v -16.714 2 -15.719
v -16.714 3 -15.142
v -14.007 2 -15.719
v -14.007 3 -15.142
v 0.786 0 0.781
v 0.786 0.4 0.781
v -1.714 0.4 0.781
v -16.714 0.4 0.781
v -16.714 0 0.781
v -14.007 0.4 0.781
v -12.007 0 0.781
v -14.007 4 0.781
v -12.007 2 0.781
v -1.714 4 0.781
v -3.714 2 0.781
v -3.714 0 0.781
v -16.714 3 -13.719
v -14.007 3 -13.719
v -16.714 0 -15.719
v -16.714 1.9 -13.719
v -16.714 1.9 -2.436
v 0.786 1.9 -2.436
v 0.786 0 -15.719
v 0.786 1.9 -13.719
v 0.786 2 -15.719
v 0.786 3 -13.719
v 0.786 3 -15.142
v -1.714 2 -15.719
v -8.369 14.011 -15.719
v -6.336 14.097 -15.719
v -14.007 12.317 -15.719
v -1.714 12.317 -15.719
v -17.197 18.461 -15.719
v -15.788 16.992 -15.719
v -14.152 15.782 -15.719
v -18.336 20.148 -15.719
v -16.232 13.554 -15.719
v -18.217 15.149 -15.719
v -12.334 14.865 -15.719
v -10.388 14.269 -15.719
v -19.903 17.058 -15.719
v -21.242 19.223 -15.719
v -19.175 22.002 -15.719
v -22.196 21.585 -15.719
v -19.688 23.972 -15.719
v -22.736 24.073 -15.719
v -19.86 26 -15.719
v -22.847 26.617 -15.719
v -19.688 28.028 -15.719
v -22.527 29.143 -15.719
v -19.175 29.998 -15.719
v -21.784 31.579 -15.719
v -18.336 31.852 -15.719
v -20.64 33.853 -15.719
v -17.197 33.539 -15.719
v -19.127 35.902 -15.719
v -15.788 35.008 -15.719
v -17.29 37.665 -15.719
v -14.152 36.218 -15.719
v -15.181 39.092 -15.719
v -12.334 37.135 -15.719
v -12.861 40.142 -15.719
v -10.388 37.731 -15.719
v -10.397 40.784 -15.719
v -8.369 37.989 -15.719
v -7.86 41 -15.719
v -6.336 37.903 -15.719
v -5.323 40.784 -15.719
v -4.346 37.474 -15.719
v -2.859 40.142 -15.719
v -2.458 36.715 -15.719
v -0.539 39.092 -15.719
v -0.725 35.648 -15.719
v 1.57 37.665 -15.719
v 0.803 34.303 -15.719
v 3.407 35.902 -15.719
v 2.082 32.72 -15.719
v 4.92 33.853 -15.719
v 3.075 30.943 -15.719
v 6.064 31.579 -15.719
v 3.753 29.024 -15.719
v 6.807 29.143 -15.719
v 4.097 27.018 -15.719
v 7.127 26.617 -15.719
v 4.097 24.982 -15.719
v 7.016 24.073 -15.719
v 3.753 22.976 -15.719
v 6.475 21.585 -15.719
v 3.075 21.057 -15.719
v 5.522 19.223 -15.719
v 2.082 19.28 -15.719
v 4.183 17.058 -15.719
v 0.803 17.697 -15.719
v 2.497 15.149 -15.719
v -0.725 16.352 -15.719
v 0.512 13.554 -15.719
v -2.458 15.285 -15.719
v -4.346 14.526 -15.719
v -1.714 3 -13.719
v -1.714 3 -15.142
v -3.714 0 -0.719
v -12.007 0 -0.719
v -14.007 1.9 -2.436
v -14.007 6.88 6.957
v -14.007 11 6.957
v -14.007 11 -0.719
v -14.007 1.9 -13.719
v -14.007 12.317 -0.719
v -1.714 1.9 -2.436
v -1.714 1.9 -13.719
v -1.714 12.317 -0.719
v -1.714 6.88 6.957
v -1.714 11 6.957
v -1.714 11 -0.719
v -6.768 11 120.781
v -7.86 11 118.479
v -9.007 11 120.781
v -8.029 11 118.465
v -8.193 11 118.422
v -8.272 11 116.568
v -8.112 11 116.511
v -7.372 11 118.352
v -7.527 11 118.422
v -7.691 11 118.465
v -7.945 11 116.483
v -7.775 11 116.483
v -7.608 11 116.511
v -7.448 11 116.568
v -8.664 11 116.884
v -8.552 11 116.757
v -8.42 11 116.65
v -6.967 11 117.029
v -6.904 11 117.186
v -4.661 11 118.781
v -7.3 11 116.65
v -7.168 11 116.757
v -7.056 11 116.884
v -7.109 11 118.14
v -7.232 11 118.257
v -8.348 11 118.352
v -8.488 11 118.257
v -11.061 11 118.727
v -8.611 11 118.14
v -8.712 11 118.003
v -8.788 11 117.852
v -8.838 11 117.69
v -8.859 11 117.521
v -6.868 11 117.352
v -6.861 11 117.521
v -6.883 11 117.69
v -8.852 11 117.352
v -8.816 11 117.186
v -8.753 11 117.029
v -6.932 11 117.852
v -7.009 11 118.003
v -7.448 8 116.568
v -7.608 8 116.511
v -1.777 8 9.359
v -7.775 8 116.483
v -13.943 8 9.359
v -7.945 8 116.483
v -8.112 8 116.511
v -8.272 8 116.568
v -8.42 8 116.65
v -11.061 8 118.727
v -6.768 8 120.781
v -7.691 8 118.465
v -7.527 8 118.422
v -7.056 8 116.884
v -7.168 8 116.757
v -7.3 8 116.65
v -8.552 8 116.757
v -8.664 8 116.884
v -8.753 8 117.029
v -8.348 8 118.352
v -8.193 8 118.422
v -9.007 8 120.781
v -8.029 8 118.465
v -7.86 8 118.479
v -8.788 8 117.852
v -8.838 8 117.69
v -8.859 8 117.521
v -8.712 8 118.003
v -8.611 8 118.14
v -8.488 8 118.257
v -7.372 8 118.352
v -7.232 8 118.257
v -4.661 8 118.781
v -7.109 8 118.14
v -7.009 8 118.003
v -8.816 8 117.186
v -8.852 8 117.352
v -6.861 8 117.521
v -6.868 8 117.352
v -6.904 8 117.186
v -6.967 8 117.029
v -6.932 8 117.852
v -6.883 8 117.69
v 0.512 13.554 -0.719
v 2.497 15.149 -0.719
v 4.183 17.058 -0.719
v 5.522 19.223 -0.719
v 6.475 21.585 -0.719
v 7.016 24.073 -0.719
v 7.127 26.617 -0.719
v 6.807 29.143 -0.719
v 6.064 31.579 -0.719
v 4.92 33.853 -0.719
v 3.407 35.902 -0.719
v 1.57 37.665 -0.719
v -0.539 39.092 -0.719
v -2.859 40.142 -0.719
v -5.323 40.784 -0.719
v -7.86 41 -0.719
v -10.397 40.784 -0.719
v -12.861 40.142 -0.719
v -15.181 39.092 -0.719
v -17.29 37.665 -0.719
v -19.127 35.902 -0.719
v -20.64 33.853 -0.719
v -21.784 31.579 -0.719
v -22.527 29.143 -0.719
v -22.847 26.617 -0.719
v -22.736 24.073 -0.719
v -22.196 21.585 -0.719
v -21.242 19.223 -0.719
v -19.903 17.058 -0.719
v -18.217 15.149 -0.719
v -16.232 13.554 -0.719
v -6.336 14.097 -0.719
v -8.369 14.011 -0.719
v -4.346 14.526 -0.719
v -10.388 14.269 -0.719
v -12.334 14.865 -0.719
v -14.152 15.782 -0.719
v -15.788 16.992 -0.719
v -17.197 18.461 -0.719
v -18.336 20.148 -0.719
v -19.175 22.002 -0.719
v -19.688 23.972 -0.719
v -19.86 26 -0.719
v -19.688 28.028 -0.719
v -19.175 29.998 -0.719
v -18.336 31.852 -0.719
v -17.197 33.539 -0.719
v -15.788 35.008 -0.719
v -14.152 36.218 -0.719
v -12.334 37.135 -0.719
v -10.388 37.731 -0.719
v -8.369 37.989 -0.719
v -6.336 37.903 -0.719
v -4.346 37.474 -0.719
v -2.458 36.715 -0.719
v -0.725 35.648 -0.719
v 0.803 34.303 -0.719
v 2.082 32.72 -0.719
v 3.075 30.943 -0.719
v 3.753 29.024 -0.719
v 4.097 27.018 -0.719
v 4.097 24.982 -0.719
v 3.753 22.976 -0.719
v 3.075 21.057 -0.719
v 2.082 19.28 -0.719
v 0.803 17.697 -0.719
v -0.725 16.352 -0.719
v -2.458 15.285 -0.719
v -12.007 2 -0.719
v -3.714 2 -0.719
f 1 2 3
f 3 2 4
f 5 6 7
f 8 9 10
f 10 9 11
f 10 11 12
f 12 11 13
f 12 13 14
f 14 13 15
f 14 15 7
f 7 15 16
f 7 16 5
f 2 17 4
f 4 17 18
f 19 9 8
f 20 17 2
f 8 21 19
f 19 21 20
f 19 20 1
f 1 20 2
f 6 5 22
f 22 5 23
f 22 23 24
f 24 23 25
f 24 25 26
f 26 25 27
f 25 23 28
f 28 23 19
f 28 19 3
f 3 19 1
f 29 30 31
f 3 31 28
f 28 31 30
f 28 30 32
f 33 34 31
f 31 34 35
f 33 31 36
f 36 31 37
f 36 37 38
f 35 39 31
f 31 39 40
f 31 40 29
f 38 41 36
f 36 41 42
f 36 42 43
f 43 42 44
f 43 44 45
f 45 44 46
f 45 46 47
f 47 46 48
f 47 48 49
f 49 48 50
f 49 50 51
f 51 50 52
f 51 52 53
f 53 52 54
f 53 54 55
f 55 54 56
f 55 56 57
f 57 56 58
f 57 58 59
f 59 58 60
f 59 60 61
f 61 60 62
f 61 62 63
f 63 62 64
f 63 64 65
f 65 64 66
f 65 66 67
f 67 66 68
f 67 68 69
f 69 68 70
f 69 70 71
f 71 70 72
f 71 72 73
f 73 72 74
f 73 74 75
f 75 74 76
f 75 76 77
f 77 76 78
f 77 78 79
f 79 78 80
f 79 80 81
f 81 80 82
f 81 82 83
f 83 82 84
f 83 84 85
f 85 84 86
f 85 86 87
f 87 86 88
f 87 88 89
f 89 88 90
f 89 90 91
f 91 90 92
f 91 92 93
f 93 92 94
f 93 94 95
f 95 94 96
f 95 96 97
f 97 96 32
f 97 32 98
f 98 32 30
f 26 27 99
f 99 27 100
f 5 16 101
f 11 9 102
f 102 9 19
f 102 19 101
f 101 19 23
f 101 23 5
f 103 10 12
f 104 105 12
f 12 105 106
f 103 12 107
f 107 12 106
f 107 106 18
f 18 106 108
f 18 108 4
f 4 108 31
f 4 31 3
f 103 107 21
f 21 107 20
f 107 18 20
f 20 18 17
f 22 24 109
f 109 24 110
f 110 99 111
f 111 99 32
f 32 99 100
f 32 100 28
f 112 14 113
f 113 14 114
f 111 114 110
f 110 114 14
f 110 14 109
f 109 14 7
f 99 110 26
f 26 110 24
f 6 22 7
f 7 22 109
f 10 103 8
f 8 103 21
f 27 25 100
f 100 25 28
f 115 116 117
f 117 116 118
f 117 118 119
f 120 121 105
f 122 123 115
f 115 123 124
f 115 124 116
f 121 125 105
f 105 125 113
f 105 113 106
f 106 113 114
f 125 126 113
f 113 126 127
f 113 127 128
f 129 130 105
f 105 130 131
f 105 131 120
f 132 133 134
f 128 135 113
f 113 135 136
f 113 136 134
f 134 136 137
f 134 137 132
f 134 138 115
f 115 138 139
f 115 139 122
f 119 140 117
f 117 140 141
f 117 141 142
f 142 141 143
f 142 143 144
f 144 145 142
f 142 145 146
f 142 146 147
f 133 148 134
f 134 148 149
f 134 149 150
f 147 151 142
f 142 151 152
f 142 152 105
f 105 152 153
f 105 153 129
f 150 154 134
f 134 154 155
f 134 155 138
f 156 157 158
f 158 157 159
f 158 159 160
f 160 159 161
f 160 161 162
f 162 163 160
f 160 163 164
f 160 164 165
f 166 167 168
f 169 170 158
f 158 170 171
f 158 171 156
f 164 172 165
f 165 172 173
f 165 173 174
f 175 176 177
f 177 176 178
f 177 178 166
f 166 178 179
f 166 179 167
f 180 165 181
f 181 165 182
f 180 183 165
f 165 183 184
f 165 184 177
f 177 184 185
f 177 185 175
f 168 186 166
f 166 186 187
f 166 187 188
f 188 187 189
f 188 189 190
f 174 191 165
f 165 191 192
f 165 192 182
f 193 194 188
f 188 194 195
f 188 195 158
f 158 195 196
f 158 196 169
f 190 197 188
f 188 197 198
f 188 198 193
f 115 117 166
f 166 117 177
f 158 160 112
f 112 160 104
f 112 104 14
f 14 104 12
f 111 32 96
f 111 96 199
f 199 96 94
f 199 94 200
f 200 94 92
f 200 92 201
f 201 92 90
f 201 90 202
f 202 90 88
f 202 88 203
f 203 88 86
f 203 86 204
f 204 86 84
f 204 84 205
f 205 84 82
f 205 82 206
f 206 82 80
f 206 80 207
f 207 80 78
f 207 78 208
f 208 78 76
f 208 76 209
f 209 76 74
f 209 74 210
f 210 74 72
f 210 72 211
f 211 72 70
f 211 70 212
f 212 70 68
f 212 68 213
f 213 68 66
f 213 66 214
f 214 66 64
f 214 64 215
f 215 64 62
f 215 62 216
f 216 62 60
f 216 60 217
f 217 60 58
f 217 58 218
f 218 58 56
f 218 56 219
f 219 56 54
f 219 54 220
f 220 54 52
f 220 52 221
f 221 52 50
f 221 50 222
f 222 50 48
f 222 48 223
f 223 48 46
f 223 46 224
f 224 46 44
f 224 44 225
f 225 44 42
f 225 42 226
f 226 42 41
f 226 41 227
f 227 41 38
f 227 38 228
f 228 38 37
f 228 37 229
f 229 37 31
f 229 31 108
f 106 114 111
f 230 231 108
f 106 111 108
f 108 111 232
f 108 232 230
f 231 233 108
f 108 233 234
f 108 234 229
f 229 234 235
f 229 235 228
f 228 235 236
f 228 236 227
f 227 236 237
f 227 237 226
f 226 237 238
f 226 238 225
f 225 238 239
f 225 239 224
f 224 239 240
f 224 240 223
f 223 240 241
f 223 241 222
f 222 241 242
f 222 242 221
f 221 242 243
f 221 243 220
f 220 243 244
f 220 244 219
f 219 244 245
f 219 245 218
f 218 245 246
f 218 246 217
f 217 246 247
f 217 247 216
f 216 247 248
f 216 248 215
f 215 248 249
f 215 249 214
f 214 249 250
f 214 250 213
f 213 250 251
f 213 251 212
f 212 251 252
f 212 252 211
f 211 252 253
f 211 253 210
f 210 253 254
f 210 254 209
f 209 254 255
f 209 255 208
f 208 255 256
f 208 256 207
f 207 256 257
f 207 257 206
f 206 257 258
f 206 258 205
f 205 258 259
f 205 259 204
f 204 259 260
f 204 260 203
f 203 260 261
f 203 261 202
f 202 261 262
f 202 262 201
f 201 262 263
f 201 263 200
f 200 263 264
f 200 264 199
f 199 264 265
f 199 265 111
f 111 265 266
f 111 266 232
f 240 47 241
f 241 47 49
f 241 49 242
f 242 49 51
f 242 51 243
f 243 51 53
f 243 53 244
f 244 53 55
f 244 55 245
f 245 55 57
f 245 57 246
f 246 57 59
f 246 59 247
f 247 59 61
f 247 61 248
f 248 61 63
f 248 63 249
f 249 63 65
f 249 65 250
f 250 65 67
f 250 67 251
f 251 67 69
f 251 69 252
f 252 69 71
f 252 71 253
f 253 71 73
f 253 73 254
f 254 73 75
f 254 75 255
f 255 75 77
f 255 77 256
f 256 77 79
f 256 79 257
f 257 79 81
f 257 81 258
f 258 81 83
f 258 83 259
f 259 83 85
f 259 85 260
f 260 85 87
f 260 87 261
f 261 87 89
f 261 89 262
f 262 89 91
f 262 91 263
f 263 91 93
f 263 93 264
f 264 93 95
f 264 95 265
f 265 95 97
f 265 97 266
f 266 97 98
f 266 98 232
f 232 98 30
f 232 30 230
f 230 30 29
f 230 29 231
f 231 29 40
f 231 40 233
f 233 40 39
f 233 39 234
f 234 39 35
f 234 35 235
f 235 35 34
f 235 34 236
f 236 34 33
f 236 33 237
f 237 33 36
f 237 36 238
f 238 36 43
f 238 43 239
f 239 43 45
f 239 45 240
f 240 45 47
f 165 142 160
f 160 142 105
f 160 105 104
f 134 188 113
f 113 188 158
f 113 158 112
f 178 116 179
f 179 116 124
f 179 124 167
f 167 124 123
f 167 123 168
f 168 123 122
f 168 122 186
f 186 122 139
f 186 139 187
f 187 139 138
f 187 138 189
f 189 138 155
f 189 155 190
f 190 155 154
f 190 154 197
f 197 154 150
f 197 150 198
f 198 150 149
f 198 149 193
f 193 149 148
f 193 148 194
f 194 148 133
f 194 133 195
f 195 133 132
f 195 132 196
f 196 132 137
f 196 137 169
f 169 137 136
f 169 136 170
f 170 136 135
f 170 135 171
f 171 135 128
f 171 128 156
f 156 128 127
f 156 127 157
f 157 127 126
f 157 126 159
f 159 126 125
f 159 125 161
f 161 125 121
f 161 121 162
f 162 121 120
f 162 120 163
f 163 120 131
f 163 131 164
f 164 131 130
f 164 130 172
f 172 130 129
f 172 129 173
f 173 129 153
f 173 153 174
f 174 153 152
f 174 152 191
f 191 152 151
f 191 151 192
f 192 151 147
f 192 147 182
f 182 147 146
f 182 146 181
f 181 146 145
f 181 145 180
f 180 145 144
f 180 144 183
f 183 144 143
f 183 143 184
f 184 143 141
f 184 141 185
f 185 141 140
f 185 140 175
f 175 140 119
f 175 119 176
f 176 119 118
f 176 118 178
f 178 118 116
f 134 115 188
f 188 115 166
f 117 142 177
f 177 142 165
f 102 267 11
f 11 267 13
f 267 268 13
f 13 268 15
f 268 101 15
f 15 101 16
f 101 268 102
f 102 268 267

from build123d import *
from OCP.BRepFilletAPI import BRepFilletAPI_MakeChamfer

# Parameters (mm, degrees)
SKETCH1_W           = 17.5
SKETCH1_H           = 16.5
BOSS_EXTRUDE1_DEPTH = 3
SKETCH2_W           = 2.707061395
SKETCH2_H           = 1.1
SKETCH2_W_2         = 2.5
CUT_EXTRUDE1_DEPTH  = 14.5
CHAMFER1_SIZE       = 1.5
CHAMFER1_SIZE2      = 3.216760381
CHAMFER2_SIZE       = 1
CHAMFER2_SIZE2      = 0.577350269
SKETCH3_W           = 12.292938605
SKETCH3_H           = 15.922649731
BOSS_EXTRUDE2_DEPTH = 8
SKETCH4_W           = 12.292938605
SKETCH4_H           = 3
BOSS_EXTRUDE3_DEPTH = 120
CHAMFER3_SIZE       = 4
CHAMFER3_SIZE2      = 8.578027682
SKETCH5_W           = 12.292938605
SKETCH5_H           = 0.577350269
BOSS_EXTRUDE4_DEPTH = 10
SKETCH6_R           = 12
BOSS_EXTRUDE7_DEPTH = 15
CUT_EXTRUDE3_DEPTH  = 15
SKETCH10_R          = 1
CUT_EXTRUDE4_DEPTH  = 15
CHAMFER5_SIZE       = 2
CHAMFER5_SIZE2      = 2.054853594
SKETCH11_W          = 8.292938605
SKETCH11_H          = 2
CUT_EXTRUDE5_DEPTH  = 1.5


with BuildPart() as part:
    # Sketch1 → Boss-Extrude1 (new body)
    with BuildSketch(Plane(origin=(0, 0, 0), x_dir=(1, 0, 0), z_dir=(0, 1, 0))):
        with Locations((-7.963643791, 7.469362745)):
            Rectangle(SKETCH1_W, SKETCH1_H)
    extrude(amount=BOSS_EXTRUDE1_DEPTH)

    # Sketch2 → Cut-Extrude1 (cut)
    with BuildSketch(Plane.XY.offset(0.780637255)):
        with Locations((-15.360113094, 2.45)):
            Rectangle(SKETCH2_W, SKETCH2_H)
        with Locations((-0.463643791, 2.45)):
            Rectangle(SKETCH2_W_2, SKETCH2_H)
    extrude(amount=-CUT_EXTRUDE1_DEPTH, mode=Mode.SUBTRACT)

    # Chamfer1
    chamfer1_edges = [part.edges().sort_by_distance(p)[0] for p in [
        (-15.360113093, 1.9, 0.780637255),
        (-0.463643791, 1.9, 0.780637255),
    ]]
    chamfer1_side = [part.faces().sort_by_distance(p)[0] for p in [
        (-7.933712225, 1.383662189, 0.780637255),
    ]]
    chamfer(chamfer1_edges, length=CHAMFER1_SIZE, length2=CHAMFER1_SIZE2, reference=chamfer1_side[0])

    # Chamfer2
    chamfer2_edges = [part.edges().sort_by_distance(p)[0] for p in [
        (-7.963643791, 3, -15.719362745),
    ]]
    chamfer2_side = [part.faces().sort_by_distance(p)[0] for p in [
        (-7.963643791, 1.5, -15.719362745),
    ]]
    chamfer(chamfer2_edges, length=CHAMFER2_SIZE, length2=CHAMFER2_SIZE2, reference=chamfer2_side[0])

    # Sketch3 → Boss-Extrude2 (add)
    with BuildSketch(Plane(origin=(0, 3, 0), x_dir=(1, 0, 0), z_dir=(0, 1, 0))):
        with Locations((-7.860113094, 7.180687611)):
            Rectangle(SKETCH3_W, SKETCH3_H)
    extrude(amount=BOSS_EXTRUDE2_DEPTH)

    # Sketch4 → Boss-Extrude3 (add)
    with BuildSketch(Plane.XY.offset(0.780637255)):
        with Locations((-7.860113094, 9.5)):
            Rectangle(SKETCH4_W, SKETCH4_H)
    extrude(amount=BOSS_EXTRUDE3_DEPTH)

    # Chamfer3
    chamfer3_edges = [part.edges().sort_by_distance(p)[0] for p in [
        (-7.860113093, 8, 0.780637255),
    ]]
    chamfer3_side = [part.faces().sort_by_distance(p)[0] for p in [
        (-7.867329476, 3.921188666, 0.780637255),
    ]]
    chamfer(chamfer3_edges, length=CHAMFER3_SIZE, length2=CHAMFER3_SIZE2, reference=chamfer3_side[0])

    # Sketch5 → Boss-Extrude4 (add)
    with BuildSketch(Plane(origin=(0, 11, 0), x_dir=(1, 0, 0), z_dir=(0, 1, 0))):
        with Locations((-7.860113094, 15.430687611)):
            Rectangle(SKETCH5_W, SKETCH5_H)
    extrude(amount=-BOSS_EXTRUDE4_DEPTH)

    # Sketch6 → Boss-Extrude7 (add)
    with BuildSketch(Plane(origin=(0, 0, -15.719362745), x_dir=(-1, 0, 0), z_dir=(0, 0, -1))):
        with BuildLine():
            Line((1.713643791, 11), (14.006582396, 11))
            Line((14.006582396, 11), (14.006582396, 12.317130596))
            ThreePointArc((14.006582396, 12.317130596), (7.860113093, 41), (1.713643791, 12.317130596))
            Line((1.713643791, 12.317130596), (1.713643791, 11))
        make_face()
        with Locations((7.860113093, 26)):
            Circle(SKETCH6_R, mode=Mode.SUBTRACT)
    extrude(amount=-BOSS_EXTRUDE7_DEPTH)

    # Sketch7 → Cut-Extrude3 (cut)
    with BuildSketch(Plane(origin=(0, 11, 0), x_dir=(1, 0, 0), z_dir=(0, 1, 0))):
        Polygon((-11.006582396, -120.780637255), (-14.006582396, -6.957338355), (-14.006582396, -120.780637255), align=None)
        Polygon((-4.713643791, -120.780637255), (-1.713643791, -120.780637255), (-1.713643791, -6.957338355), align=None)
    extrude(amount=-CUT_EXTRUDE3_DEPTH, mode=Mode.SUBTRACT)

    # Sketch10 → Cut-Extrude4 (cut)
    with BuildSketch(Plane(origin=(0, 11, 0), x_dir=(1, 0, 0), z_dir=(0, 1, 0))):
        with Locations(Location((-7.860113093, -117.478934199, 0), (0, 0, 270))):
            Circle(SKETCH10_R)
    extrude(amount=-CUT_EXTRUDE4_DEPTH, mode=Mode.SUBTRACT)

    # Chamfer5: one chamfer whose edges measure the first distance from different faces: ONE call of the kernel's chamfer builder (chamfer() names one face for all edges)
    chamfer5_edges_1 = [part.edges().sort_by_distance(p)[0] for p in [
        (-11.006582396, 9.5, 120.780637255),
    ]]
    chamfer5_side_1 = [part.faces().sort_by_distance(p)[0] for p in [
        (-7.860113093, 9.5, 120.780637255),
    ]]
    chamfer5_edges_2 = [part.edges().sort_by_distance(p)[0] for p in [
        (-4.713643791, 9.5, 120.780637255),
    ]]
    chamfer5_side_2 = [part.faces().sort_by_distance(p)[0] for p in [
        (-3.207843821, 9.492653469, 63.64893058),
    ]]
    chamfer5 = BRepFilletAPI_MakeChamfer(part.part.solid().wrapped)
    for e in chamfer5_edges_1:
        chamfer5.Add(CHAMFER5_SIZE, CHAMFER5_SIZE2, e.wrapped, chamfer5_side_1[0].wrapped)  # the first distance lies on this face
    for e in chamfer5_edges_2:
        chamfer5.Add(CHAMFER5_SIZE, CHAMFER5_SIZE2, e.wrapped, chamfer5_side_2[0].wrapped)  # the first distance lies on this face
    add(Compound.cast(chamfer5.Shape()), mode=Mode.REPLACE)

    # Sketch11 → Cut-Extrude5 (cut)
    with BuildSketch(Plane.XY.offset(0.780637255)):
        with Locations((-7.860113094, 1)):
            Rectangle(SKETCH11_W, SKETCH11_H)
    extrude(amount=-CUT_EXTRUDE5_DEPTH, mode=Mode.SUBTRACT)


solid = part.part
